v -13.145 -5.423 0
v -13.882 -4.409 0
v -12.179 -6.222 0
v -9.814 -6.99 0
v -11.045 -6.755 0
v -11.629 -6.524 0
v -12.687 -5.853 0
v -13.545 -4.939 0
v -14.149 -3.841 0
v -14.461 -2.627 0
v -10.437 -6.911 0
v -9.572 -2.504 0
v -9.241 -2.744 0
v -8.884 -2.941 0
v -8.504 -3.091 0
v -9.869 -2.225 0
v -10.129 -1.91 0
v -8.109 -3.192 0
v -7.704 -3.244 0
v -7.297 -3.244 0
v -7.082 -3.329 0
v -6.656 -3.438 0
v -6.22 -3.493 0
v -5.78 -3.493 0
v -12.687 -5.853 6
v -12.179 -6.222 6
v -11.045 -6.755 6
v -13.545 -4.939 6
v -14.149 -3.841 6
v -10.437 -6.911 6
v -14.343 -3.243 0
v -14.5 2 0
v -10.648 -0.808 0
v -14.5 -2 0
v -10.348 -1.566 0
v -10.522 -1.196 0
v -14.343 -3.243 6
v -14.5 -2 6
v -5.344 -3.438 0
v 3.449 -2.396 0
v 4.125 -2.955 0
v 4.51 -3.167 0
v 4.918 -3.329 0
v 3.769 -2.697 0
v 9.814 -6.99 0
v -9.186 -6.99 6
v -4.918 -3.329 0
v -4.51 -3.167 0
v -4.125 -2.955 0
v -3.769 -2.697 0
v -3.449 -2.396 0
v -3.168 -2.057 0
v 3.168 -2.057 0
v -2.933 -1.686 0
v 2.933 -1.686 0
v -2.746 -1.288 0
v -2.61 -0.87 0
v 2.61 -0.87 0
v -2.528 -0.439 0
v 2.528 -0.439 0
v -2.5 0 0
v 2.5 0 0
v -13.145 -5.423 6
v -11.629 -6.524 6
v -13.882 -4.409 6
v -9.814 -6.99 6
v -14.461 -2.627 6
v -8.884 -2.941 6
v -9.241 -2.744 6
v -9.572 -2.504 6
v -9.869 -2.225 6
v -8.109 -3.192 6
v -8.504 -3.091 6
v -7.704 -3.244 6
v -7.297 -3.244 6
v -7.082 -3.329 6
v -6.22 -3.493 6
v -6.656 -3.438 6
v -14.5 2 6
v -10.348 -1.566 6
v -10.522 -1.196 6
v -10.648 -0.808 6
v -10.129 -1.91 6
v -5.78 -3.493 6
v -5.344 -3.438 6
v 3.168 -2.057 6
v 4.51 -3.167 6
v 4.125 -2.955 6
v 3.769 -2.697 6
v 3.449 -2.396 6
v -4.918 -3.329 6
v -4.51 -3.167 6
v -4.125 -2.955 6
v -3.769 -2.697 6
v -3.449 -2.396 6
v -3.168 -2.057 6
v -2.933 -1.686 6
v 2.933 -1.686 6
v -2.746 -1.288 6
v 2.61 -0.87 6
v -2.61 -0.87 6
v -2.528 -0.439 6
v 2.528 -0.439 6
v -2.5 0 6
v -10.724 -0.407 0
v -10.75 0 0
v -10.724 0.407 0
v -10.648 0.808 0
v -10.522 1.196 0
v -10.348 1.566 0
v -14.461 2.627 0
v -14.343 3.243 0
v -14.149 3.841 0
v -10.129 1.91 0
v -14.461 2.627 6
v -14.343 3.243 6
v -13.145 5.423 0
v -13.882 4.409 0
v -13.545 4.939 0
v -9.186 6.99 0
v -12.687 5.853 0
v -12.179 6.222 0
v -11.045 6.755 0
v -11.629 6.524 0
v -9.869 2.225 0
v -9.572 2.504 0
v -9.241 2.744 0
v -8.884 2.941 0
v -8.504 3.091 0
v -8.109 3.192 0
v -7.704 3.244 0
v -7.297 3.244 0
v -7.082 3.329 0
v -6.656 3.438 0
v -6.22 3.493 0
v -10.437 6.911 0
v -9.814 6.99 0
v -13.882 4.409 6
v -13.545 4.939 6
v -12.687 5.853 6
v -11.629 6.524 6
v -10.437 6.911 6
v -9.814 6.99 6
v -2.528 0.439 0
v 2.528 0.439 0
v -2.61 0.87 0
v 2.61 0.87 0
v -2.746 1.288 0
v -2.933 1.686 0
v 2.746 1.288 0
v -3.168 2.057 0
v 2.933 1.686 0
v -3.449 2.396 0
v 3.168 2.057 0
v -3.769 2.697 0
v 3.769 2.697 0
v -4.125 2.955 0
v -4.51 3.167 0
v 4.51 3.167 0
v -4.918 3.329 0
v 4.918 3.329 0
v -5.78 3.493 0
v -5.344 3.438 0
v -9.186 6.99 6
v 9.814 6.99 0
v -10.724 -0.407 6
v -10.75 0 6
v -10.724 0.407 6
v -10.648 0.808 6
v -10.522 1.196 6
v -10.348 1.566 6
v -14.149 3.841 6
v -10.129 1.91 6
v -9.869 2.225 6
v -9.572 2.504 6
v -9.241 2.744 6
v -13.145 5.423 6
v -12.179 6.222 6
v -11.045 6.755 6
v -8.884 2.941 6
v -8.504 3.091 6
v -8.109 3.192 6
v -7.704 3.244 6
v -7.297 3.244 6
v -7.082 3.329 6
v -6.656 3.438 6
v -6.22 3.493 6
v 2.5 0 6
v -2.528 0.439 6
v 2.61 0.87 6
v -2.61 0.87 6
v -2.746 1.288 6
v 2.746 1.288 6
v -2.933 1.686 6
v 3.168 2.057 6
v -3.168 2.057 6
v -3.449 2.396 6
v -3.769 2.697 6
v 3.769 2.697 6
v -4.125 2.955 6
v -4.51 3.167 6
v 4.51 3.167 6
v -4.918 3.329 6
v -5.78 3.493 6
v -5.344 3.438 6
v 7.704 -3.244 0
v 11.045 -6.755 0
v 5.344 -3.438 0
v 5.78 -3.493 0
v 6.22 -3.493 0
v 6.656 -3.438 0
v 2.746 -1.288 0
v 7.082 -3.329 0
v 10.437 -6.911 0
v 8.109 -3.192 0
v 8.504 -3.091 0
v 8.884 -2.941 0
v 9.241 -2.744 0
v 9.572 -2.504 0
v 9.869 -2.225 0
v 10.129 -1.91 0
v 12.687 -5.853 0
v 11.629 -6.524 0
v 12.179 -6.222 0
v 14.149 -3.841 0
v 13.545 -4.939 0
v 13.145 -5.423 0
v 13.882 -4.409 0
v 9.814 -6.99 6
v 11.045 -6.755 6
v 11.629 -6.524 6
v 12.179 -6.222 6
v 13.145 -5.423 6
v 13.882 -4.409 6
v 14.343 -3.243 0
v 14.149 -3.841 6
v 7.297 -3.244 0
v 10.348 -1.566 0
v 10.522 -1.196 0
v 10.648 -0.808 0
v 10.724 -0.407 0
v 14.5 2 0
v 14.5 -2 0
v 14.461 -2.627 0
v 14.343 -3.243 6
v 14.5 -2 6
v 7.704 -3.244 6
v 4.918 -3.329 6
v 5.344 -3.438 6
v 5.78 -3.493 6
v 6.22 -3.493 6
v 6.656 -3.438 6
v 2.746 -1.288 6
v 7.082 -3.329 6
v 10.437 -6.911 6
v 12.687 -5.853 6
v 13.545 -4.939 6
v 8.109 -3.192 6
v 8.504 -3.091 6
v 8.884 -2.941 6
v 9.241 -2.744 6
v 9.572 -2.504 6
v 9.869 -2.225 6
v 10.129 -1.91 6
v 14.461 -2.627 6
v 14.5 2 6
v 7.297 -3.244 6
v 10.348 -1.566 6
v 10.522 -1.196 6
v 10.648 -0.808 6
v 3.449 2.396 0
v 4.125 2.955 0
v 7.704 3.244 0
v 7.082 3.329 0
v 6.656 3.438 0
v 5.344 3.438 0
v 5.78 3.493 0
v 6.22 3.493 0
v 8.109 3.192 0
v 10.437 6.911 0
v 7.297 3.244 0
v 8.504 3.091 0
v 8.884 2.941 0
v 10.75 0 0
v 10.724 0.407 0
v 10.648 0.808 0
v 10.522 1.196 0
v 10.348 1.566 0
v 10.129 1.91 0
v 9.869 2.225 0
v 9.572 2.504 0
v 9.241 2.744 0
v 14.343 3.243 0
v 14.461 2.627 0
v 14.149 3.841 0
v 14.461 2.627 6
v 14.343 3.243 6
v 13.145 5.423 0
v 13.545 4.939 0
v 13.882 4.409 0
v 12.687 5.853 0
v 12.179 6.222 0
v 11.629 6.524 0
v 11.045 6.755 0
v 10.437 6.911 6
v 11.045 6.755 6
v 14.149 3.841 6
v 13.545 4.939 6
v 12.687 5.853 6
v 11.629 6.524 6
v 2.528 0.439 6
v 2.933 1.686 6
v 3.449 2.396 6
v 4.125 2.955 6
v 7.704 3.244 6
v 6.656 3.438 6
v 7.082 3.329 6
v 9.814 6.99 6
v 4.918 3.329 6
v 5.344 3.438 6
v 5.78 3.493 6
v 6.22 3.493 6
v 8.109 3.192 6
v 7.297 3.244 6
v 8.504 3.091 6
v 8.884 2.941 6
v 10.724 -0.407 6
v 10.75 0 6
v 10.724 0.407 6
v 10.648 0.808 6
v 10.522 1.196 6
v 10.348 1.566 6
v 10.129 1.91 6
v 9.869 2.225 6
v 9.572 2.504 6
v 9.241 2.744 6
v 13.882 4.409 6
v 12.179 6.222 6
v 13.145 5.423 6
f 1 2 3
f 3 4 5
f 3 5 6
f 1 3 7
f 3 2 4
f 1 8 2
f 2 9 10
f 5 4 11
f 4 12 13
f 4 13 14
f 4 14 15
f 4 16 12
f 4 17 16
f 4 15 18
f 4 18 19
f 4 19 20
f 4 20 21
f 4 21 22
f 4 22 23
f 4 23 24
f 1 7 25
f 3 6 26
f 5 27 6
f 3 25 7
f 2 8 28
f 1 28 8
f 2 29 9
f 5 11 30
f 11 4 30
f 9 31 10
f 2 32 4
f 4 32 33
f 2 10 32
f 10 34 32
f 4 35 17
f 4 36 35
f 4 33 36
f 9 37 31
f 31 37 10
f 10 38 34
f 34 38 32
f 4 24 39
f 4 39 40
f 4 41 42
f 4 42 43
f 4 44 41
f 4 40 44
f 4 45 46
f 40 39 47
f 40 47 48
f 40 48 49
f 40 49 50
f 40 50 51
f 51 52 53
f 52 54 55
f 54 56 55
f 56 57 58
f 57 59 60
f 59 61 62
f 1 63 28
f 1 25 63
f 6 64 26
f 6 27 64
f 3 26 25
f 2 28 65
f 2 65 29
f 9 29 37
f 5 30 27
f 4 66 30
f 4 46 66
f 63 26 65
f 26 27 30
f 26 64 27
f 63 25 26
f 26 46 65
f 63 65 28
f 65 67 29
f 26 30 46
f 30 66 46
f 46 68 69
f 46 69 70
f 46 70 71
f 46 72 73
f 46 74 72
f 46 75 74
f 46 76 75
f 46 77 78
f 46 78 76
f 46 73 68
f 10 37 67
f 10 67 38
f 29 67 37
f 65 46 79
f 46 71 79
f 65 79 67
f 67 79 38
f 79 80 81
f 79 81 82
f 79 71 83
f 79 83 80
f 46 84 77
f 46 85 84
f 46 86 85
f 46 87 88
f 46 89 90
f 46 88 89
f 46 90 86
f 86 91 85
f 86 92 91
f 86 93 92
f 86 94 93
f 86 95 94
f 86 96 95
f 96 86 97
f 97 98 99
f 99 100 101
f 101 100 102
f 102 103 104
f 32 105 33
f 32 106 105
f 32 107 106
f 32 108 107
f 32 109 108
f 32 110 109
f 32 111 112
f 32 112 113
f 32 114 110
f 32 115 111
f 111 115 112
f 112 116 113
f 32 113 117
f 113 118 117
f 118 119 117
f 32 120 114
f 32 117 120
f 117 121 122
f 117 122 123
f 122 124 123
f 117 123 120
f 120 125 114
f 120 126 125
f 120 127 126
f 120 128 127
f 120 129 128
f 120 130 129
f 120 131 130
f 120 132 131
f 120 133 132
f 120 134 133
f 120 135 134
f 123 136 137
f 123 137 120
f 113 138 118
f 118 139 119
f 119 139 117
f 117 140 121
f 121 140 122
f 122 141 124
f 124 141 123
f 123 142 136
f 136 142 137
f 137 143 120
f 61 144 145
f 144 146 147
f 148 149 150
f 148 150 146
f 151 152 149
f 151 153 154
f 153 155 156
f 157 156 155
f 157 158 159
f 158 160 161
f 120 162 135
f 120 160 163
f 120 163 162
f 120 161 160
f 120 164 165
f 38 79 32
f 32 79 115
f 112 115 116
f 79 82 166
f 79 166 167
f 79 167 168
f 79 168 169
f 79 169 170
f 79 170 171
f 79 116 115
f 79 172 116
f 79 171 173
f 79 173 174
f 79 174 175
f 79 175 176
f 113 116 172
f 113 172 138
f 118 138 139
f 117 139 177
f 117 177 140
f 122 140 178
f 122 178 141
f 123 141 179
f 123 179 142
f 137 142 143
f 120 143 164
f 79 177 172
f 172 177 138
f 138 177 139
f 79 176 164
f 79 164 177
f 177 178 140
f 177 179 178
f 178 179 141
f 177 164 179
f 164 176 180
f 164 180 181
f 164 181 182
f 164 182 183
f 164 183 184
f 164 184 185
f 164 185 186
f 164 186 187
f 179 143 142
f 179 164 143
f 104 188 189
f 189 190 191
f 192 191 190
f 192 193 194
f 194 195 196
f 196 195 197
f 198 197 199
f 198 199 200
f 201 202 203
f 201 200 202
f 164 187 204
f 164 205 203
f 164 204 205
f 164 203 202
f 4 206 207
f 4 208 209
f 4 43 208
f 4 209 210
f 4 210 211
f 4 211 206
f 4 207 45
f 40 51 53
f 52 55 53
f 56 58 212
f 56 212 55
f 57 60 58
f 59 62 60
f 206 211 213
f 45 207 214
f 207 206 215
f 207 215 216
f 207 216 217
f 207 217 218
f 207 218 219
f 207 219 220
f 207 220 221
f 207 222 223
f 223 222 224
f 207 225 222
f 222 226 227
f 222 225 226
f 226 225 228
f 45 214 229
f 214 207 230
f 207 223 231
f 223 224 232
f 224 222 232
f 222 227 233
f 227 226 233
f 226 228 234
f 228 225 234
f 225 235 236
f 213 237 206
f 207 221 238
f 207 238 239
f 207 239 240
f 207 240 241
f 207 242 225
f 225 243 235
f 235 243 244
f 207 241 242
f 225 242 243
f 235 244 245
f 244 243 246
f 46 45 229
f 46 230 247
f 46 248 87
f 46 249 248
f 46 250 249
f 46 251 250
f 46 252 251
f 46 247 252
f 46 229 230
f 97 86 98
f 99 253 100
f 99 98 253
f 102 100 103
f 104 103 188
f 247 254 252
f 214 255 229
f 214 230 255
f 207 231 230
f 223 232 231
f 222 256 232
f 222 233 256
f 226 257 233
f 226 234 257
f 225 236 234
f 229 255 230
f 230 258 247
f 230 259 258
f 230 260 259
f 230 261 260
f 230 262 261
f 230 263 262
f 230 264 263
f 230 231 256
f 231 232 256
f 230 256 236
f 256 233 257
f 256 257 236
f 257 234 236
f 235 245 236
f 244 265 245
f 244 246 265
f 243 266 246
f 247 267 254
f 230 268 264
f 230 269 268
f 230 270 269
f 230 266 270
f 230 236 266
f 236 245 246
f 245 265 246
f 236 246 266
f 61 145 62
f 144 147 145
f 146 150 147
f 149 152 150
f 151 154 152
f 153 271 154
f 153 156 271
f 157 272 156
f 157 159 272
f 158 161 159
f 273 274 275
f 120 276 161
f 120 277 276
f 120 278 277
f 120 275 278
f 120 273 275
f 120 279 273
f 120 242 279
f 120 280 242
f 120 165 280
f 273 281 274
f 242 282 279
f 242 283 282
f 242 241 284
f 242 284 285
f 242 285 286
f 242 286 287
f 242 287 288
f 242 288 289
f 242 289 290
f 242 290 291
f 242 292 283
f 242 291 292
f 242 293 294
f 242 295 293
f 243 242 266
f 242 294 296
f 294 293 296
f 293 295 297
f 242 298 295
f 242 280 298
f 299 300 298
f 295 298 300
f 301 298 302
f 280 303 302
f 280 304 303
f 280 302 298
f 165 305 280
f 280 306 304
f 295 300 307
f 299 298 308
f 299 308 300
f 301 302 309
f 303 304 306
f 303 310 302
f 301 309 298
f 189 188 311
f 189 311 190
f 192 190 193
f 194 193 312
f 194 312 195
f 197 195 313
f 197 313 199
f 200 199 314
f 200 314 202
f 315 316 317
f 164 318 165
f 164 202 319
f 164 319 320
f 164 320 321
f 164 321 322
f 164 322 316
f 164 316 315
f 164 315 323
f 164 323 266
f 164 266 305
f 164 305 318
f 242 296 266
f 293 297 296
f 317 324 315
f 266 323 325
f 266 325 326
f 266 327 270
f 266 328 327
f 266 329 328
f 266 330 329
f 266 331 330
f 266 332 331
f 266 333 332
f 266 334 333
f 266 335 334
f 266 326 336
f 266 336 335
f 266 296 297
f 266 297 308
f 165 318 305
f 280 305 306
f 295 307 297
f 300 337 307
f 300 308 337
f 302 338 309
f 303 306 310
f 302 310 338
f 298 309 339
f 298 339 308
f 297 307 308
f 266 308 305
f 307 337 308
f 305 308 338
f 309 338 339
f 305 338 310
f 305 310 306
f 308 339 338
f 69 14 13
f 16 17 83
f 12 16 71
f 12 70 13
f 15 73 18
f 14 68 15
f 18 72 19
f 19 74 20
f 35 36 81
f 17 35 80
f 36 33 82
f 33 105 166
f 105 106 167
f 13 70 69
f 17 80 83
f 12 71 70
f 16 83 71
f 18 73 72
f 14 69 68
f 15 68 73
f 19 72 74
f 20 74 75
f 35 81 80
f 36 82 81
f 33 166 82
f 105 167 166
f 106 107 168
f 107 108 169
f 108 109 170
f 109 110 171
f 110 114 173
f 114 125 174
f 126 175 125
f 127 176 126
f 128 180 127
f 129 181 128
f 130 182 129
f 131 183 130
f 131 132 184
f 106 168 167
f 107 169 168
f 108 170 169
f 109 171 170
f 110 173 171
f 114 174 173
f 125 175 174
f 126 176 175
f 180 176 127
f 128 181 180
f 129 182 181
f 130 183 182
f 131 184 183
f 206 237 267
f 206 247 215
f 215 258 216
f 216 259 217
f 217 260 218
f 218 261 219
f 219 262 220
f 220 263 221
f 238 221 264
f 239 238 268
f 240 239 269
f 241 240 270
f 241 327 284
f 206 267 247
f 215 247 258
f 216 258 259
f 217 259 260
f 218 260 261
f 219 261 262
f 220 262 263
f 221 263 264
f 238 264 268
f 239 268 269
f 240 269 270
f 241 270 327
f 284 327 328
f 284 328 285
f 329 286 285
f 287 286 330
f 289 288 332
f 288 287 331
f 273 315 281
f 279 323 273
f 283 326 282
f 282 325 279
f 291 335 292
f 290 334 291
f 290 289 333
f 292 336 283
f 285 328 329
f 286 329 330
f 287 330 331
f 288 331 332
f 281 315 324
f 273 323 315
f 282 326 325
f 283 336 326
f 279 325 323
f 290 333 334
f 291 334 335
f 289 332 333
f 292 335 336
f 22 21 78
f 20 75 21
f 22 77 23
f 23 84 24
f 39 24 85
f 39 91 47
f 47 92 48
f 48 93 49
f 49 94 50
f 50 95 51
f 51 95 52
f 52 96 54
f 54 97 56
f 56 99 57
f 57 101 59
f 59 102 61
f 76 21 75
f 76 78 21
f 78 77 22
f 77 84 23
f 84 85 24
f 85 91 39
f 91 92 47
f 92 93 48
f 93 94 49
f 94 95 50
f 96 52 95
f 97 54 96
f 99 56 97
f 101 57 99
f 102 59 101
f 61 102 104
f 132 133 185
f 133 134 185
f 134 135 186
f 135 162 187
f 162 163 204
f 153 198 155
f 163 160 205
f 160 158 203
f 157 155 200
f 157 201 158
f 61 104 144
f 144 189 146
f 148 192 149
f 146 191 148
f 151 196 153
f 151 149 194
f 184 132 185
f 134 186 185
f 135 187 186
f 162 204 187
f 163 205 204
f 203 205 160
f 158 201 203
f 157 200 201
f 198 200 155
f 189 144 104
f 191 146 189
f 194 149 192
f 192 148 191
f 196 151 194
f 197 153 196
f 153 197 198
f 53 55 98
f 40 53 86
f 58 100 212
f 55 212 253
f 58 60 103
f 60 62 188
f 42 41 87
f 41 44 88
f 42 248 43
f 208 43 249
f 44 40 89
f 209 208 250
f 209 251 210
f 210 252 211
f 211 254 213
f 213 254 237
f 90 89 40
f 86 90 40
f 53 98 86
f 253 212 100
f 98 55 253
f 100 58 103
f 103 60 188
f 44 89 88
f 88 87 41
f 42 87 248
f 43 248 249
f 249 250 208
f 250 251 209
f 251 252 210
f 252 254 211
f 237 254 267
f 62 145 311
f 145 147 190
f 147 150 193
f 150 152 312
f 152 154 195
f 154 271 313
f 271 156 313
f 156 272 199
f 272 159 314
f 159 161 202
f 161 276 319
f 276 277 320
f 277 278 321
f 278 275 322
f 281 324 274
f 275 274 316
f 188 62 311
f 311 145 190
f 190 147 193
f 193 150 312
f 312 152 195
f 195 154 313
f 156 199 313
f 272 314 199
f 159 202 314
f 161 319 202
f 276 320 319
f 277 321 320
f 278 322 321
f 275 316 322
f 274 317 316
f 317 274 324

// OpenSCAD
$fn = 50;

difference() {
	union() {
		hull() {
			translate(v = [-9.5, 2.0, 0]) {
				cylinder(h = 6, r = 5);
			}
			translate(v = [9.5, 2.0, 0]) {
				cylinder(h = 6, r = 5);
			}
			translate(v = [-9.5, -2.0, 0]) {
				cylinder(h = 6, r = 5);
			}
			translate(v = [9.5, -2.0, 0]) {
				cylinder(h = 6, r = 5);
			}
		}
	}
	union() {
		translate(v = [-7.5, 0.0, -100.0]) {
			cylinder(h = 200, r = 3.25);
		}
		translate(v = [7.5, 0.0, -100.0]) {
			cylinder(h = 200, r = 3.25);
		}
		translate(v = [-7.5, 0.0, -100.0]) {
			cylinder(h = 200, r = 1.8);
		}
		translate(v = [7.5, 0.0, -100.0]) {
			cylinder(h = 200, r = 1.8);
		}
		translate(v = [-6.0, 0, 0.0]) {
			cylinder(h = 6, r = 3.5);
		}
		translate(v = [6.0, 0, 0.0]) {
			cylinder(h = 6, r = 3.5);
		}
	}
}
